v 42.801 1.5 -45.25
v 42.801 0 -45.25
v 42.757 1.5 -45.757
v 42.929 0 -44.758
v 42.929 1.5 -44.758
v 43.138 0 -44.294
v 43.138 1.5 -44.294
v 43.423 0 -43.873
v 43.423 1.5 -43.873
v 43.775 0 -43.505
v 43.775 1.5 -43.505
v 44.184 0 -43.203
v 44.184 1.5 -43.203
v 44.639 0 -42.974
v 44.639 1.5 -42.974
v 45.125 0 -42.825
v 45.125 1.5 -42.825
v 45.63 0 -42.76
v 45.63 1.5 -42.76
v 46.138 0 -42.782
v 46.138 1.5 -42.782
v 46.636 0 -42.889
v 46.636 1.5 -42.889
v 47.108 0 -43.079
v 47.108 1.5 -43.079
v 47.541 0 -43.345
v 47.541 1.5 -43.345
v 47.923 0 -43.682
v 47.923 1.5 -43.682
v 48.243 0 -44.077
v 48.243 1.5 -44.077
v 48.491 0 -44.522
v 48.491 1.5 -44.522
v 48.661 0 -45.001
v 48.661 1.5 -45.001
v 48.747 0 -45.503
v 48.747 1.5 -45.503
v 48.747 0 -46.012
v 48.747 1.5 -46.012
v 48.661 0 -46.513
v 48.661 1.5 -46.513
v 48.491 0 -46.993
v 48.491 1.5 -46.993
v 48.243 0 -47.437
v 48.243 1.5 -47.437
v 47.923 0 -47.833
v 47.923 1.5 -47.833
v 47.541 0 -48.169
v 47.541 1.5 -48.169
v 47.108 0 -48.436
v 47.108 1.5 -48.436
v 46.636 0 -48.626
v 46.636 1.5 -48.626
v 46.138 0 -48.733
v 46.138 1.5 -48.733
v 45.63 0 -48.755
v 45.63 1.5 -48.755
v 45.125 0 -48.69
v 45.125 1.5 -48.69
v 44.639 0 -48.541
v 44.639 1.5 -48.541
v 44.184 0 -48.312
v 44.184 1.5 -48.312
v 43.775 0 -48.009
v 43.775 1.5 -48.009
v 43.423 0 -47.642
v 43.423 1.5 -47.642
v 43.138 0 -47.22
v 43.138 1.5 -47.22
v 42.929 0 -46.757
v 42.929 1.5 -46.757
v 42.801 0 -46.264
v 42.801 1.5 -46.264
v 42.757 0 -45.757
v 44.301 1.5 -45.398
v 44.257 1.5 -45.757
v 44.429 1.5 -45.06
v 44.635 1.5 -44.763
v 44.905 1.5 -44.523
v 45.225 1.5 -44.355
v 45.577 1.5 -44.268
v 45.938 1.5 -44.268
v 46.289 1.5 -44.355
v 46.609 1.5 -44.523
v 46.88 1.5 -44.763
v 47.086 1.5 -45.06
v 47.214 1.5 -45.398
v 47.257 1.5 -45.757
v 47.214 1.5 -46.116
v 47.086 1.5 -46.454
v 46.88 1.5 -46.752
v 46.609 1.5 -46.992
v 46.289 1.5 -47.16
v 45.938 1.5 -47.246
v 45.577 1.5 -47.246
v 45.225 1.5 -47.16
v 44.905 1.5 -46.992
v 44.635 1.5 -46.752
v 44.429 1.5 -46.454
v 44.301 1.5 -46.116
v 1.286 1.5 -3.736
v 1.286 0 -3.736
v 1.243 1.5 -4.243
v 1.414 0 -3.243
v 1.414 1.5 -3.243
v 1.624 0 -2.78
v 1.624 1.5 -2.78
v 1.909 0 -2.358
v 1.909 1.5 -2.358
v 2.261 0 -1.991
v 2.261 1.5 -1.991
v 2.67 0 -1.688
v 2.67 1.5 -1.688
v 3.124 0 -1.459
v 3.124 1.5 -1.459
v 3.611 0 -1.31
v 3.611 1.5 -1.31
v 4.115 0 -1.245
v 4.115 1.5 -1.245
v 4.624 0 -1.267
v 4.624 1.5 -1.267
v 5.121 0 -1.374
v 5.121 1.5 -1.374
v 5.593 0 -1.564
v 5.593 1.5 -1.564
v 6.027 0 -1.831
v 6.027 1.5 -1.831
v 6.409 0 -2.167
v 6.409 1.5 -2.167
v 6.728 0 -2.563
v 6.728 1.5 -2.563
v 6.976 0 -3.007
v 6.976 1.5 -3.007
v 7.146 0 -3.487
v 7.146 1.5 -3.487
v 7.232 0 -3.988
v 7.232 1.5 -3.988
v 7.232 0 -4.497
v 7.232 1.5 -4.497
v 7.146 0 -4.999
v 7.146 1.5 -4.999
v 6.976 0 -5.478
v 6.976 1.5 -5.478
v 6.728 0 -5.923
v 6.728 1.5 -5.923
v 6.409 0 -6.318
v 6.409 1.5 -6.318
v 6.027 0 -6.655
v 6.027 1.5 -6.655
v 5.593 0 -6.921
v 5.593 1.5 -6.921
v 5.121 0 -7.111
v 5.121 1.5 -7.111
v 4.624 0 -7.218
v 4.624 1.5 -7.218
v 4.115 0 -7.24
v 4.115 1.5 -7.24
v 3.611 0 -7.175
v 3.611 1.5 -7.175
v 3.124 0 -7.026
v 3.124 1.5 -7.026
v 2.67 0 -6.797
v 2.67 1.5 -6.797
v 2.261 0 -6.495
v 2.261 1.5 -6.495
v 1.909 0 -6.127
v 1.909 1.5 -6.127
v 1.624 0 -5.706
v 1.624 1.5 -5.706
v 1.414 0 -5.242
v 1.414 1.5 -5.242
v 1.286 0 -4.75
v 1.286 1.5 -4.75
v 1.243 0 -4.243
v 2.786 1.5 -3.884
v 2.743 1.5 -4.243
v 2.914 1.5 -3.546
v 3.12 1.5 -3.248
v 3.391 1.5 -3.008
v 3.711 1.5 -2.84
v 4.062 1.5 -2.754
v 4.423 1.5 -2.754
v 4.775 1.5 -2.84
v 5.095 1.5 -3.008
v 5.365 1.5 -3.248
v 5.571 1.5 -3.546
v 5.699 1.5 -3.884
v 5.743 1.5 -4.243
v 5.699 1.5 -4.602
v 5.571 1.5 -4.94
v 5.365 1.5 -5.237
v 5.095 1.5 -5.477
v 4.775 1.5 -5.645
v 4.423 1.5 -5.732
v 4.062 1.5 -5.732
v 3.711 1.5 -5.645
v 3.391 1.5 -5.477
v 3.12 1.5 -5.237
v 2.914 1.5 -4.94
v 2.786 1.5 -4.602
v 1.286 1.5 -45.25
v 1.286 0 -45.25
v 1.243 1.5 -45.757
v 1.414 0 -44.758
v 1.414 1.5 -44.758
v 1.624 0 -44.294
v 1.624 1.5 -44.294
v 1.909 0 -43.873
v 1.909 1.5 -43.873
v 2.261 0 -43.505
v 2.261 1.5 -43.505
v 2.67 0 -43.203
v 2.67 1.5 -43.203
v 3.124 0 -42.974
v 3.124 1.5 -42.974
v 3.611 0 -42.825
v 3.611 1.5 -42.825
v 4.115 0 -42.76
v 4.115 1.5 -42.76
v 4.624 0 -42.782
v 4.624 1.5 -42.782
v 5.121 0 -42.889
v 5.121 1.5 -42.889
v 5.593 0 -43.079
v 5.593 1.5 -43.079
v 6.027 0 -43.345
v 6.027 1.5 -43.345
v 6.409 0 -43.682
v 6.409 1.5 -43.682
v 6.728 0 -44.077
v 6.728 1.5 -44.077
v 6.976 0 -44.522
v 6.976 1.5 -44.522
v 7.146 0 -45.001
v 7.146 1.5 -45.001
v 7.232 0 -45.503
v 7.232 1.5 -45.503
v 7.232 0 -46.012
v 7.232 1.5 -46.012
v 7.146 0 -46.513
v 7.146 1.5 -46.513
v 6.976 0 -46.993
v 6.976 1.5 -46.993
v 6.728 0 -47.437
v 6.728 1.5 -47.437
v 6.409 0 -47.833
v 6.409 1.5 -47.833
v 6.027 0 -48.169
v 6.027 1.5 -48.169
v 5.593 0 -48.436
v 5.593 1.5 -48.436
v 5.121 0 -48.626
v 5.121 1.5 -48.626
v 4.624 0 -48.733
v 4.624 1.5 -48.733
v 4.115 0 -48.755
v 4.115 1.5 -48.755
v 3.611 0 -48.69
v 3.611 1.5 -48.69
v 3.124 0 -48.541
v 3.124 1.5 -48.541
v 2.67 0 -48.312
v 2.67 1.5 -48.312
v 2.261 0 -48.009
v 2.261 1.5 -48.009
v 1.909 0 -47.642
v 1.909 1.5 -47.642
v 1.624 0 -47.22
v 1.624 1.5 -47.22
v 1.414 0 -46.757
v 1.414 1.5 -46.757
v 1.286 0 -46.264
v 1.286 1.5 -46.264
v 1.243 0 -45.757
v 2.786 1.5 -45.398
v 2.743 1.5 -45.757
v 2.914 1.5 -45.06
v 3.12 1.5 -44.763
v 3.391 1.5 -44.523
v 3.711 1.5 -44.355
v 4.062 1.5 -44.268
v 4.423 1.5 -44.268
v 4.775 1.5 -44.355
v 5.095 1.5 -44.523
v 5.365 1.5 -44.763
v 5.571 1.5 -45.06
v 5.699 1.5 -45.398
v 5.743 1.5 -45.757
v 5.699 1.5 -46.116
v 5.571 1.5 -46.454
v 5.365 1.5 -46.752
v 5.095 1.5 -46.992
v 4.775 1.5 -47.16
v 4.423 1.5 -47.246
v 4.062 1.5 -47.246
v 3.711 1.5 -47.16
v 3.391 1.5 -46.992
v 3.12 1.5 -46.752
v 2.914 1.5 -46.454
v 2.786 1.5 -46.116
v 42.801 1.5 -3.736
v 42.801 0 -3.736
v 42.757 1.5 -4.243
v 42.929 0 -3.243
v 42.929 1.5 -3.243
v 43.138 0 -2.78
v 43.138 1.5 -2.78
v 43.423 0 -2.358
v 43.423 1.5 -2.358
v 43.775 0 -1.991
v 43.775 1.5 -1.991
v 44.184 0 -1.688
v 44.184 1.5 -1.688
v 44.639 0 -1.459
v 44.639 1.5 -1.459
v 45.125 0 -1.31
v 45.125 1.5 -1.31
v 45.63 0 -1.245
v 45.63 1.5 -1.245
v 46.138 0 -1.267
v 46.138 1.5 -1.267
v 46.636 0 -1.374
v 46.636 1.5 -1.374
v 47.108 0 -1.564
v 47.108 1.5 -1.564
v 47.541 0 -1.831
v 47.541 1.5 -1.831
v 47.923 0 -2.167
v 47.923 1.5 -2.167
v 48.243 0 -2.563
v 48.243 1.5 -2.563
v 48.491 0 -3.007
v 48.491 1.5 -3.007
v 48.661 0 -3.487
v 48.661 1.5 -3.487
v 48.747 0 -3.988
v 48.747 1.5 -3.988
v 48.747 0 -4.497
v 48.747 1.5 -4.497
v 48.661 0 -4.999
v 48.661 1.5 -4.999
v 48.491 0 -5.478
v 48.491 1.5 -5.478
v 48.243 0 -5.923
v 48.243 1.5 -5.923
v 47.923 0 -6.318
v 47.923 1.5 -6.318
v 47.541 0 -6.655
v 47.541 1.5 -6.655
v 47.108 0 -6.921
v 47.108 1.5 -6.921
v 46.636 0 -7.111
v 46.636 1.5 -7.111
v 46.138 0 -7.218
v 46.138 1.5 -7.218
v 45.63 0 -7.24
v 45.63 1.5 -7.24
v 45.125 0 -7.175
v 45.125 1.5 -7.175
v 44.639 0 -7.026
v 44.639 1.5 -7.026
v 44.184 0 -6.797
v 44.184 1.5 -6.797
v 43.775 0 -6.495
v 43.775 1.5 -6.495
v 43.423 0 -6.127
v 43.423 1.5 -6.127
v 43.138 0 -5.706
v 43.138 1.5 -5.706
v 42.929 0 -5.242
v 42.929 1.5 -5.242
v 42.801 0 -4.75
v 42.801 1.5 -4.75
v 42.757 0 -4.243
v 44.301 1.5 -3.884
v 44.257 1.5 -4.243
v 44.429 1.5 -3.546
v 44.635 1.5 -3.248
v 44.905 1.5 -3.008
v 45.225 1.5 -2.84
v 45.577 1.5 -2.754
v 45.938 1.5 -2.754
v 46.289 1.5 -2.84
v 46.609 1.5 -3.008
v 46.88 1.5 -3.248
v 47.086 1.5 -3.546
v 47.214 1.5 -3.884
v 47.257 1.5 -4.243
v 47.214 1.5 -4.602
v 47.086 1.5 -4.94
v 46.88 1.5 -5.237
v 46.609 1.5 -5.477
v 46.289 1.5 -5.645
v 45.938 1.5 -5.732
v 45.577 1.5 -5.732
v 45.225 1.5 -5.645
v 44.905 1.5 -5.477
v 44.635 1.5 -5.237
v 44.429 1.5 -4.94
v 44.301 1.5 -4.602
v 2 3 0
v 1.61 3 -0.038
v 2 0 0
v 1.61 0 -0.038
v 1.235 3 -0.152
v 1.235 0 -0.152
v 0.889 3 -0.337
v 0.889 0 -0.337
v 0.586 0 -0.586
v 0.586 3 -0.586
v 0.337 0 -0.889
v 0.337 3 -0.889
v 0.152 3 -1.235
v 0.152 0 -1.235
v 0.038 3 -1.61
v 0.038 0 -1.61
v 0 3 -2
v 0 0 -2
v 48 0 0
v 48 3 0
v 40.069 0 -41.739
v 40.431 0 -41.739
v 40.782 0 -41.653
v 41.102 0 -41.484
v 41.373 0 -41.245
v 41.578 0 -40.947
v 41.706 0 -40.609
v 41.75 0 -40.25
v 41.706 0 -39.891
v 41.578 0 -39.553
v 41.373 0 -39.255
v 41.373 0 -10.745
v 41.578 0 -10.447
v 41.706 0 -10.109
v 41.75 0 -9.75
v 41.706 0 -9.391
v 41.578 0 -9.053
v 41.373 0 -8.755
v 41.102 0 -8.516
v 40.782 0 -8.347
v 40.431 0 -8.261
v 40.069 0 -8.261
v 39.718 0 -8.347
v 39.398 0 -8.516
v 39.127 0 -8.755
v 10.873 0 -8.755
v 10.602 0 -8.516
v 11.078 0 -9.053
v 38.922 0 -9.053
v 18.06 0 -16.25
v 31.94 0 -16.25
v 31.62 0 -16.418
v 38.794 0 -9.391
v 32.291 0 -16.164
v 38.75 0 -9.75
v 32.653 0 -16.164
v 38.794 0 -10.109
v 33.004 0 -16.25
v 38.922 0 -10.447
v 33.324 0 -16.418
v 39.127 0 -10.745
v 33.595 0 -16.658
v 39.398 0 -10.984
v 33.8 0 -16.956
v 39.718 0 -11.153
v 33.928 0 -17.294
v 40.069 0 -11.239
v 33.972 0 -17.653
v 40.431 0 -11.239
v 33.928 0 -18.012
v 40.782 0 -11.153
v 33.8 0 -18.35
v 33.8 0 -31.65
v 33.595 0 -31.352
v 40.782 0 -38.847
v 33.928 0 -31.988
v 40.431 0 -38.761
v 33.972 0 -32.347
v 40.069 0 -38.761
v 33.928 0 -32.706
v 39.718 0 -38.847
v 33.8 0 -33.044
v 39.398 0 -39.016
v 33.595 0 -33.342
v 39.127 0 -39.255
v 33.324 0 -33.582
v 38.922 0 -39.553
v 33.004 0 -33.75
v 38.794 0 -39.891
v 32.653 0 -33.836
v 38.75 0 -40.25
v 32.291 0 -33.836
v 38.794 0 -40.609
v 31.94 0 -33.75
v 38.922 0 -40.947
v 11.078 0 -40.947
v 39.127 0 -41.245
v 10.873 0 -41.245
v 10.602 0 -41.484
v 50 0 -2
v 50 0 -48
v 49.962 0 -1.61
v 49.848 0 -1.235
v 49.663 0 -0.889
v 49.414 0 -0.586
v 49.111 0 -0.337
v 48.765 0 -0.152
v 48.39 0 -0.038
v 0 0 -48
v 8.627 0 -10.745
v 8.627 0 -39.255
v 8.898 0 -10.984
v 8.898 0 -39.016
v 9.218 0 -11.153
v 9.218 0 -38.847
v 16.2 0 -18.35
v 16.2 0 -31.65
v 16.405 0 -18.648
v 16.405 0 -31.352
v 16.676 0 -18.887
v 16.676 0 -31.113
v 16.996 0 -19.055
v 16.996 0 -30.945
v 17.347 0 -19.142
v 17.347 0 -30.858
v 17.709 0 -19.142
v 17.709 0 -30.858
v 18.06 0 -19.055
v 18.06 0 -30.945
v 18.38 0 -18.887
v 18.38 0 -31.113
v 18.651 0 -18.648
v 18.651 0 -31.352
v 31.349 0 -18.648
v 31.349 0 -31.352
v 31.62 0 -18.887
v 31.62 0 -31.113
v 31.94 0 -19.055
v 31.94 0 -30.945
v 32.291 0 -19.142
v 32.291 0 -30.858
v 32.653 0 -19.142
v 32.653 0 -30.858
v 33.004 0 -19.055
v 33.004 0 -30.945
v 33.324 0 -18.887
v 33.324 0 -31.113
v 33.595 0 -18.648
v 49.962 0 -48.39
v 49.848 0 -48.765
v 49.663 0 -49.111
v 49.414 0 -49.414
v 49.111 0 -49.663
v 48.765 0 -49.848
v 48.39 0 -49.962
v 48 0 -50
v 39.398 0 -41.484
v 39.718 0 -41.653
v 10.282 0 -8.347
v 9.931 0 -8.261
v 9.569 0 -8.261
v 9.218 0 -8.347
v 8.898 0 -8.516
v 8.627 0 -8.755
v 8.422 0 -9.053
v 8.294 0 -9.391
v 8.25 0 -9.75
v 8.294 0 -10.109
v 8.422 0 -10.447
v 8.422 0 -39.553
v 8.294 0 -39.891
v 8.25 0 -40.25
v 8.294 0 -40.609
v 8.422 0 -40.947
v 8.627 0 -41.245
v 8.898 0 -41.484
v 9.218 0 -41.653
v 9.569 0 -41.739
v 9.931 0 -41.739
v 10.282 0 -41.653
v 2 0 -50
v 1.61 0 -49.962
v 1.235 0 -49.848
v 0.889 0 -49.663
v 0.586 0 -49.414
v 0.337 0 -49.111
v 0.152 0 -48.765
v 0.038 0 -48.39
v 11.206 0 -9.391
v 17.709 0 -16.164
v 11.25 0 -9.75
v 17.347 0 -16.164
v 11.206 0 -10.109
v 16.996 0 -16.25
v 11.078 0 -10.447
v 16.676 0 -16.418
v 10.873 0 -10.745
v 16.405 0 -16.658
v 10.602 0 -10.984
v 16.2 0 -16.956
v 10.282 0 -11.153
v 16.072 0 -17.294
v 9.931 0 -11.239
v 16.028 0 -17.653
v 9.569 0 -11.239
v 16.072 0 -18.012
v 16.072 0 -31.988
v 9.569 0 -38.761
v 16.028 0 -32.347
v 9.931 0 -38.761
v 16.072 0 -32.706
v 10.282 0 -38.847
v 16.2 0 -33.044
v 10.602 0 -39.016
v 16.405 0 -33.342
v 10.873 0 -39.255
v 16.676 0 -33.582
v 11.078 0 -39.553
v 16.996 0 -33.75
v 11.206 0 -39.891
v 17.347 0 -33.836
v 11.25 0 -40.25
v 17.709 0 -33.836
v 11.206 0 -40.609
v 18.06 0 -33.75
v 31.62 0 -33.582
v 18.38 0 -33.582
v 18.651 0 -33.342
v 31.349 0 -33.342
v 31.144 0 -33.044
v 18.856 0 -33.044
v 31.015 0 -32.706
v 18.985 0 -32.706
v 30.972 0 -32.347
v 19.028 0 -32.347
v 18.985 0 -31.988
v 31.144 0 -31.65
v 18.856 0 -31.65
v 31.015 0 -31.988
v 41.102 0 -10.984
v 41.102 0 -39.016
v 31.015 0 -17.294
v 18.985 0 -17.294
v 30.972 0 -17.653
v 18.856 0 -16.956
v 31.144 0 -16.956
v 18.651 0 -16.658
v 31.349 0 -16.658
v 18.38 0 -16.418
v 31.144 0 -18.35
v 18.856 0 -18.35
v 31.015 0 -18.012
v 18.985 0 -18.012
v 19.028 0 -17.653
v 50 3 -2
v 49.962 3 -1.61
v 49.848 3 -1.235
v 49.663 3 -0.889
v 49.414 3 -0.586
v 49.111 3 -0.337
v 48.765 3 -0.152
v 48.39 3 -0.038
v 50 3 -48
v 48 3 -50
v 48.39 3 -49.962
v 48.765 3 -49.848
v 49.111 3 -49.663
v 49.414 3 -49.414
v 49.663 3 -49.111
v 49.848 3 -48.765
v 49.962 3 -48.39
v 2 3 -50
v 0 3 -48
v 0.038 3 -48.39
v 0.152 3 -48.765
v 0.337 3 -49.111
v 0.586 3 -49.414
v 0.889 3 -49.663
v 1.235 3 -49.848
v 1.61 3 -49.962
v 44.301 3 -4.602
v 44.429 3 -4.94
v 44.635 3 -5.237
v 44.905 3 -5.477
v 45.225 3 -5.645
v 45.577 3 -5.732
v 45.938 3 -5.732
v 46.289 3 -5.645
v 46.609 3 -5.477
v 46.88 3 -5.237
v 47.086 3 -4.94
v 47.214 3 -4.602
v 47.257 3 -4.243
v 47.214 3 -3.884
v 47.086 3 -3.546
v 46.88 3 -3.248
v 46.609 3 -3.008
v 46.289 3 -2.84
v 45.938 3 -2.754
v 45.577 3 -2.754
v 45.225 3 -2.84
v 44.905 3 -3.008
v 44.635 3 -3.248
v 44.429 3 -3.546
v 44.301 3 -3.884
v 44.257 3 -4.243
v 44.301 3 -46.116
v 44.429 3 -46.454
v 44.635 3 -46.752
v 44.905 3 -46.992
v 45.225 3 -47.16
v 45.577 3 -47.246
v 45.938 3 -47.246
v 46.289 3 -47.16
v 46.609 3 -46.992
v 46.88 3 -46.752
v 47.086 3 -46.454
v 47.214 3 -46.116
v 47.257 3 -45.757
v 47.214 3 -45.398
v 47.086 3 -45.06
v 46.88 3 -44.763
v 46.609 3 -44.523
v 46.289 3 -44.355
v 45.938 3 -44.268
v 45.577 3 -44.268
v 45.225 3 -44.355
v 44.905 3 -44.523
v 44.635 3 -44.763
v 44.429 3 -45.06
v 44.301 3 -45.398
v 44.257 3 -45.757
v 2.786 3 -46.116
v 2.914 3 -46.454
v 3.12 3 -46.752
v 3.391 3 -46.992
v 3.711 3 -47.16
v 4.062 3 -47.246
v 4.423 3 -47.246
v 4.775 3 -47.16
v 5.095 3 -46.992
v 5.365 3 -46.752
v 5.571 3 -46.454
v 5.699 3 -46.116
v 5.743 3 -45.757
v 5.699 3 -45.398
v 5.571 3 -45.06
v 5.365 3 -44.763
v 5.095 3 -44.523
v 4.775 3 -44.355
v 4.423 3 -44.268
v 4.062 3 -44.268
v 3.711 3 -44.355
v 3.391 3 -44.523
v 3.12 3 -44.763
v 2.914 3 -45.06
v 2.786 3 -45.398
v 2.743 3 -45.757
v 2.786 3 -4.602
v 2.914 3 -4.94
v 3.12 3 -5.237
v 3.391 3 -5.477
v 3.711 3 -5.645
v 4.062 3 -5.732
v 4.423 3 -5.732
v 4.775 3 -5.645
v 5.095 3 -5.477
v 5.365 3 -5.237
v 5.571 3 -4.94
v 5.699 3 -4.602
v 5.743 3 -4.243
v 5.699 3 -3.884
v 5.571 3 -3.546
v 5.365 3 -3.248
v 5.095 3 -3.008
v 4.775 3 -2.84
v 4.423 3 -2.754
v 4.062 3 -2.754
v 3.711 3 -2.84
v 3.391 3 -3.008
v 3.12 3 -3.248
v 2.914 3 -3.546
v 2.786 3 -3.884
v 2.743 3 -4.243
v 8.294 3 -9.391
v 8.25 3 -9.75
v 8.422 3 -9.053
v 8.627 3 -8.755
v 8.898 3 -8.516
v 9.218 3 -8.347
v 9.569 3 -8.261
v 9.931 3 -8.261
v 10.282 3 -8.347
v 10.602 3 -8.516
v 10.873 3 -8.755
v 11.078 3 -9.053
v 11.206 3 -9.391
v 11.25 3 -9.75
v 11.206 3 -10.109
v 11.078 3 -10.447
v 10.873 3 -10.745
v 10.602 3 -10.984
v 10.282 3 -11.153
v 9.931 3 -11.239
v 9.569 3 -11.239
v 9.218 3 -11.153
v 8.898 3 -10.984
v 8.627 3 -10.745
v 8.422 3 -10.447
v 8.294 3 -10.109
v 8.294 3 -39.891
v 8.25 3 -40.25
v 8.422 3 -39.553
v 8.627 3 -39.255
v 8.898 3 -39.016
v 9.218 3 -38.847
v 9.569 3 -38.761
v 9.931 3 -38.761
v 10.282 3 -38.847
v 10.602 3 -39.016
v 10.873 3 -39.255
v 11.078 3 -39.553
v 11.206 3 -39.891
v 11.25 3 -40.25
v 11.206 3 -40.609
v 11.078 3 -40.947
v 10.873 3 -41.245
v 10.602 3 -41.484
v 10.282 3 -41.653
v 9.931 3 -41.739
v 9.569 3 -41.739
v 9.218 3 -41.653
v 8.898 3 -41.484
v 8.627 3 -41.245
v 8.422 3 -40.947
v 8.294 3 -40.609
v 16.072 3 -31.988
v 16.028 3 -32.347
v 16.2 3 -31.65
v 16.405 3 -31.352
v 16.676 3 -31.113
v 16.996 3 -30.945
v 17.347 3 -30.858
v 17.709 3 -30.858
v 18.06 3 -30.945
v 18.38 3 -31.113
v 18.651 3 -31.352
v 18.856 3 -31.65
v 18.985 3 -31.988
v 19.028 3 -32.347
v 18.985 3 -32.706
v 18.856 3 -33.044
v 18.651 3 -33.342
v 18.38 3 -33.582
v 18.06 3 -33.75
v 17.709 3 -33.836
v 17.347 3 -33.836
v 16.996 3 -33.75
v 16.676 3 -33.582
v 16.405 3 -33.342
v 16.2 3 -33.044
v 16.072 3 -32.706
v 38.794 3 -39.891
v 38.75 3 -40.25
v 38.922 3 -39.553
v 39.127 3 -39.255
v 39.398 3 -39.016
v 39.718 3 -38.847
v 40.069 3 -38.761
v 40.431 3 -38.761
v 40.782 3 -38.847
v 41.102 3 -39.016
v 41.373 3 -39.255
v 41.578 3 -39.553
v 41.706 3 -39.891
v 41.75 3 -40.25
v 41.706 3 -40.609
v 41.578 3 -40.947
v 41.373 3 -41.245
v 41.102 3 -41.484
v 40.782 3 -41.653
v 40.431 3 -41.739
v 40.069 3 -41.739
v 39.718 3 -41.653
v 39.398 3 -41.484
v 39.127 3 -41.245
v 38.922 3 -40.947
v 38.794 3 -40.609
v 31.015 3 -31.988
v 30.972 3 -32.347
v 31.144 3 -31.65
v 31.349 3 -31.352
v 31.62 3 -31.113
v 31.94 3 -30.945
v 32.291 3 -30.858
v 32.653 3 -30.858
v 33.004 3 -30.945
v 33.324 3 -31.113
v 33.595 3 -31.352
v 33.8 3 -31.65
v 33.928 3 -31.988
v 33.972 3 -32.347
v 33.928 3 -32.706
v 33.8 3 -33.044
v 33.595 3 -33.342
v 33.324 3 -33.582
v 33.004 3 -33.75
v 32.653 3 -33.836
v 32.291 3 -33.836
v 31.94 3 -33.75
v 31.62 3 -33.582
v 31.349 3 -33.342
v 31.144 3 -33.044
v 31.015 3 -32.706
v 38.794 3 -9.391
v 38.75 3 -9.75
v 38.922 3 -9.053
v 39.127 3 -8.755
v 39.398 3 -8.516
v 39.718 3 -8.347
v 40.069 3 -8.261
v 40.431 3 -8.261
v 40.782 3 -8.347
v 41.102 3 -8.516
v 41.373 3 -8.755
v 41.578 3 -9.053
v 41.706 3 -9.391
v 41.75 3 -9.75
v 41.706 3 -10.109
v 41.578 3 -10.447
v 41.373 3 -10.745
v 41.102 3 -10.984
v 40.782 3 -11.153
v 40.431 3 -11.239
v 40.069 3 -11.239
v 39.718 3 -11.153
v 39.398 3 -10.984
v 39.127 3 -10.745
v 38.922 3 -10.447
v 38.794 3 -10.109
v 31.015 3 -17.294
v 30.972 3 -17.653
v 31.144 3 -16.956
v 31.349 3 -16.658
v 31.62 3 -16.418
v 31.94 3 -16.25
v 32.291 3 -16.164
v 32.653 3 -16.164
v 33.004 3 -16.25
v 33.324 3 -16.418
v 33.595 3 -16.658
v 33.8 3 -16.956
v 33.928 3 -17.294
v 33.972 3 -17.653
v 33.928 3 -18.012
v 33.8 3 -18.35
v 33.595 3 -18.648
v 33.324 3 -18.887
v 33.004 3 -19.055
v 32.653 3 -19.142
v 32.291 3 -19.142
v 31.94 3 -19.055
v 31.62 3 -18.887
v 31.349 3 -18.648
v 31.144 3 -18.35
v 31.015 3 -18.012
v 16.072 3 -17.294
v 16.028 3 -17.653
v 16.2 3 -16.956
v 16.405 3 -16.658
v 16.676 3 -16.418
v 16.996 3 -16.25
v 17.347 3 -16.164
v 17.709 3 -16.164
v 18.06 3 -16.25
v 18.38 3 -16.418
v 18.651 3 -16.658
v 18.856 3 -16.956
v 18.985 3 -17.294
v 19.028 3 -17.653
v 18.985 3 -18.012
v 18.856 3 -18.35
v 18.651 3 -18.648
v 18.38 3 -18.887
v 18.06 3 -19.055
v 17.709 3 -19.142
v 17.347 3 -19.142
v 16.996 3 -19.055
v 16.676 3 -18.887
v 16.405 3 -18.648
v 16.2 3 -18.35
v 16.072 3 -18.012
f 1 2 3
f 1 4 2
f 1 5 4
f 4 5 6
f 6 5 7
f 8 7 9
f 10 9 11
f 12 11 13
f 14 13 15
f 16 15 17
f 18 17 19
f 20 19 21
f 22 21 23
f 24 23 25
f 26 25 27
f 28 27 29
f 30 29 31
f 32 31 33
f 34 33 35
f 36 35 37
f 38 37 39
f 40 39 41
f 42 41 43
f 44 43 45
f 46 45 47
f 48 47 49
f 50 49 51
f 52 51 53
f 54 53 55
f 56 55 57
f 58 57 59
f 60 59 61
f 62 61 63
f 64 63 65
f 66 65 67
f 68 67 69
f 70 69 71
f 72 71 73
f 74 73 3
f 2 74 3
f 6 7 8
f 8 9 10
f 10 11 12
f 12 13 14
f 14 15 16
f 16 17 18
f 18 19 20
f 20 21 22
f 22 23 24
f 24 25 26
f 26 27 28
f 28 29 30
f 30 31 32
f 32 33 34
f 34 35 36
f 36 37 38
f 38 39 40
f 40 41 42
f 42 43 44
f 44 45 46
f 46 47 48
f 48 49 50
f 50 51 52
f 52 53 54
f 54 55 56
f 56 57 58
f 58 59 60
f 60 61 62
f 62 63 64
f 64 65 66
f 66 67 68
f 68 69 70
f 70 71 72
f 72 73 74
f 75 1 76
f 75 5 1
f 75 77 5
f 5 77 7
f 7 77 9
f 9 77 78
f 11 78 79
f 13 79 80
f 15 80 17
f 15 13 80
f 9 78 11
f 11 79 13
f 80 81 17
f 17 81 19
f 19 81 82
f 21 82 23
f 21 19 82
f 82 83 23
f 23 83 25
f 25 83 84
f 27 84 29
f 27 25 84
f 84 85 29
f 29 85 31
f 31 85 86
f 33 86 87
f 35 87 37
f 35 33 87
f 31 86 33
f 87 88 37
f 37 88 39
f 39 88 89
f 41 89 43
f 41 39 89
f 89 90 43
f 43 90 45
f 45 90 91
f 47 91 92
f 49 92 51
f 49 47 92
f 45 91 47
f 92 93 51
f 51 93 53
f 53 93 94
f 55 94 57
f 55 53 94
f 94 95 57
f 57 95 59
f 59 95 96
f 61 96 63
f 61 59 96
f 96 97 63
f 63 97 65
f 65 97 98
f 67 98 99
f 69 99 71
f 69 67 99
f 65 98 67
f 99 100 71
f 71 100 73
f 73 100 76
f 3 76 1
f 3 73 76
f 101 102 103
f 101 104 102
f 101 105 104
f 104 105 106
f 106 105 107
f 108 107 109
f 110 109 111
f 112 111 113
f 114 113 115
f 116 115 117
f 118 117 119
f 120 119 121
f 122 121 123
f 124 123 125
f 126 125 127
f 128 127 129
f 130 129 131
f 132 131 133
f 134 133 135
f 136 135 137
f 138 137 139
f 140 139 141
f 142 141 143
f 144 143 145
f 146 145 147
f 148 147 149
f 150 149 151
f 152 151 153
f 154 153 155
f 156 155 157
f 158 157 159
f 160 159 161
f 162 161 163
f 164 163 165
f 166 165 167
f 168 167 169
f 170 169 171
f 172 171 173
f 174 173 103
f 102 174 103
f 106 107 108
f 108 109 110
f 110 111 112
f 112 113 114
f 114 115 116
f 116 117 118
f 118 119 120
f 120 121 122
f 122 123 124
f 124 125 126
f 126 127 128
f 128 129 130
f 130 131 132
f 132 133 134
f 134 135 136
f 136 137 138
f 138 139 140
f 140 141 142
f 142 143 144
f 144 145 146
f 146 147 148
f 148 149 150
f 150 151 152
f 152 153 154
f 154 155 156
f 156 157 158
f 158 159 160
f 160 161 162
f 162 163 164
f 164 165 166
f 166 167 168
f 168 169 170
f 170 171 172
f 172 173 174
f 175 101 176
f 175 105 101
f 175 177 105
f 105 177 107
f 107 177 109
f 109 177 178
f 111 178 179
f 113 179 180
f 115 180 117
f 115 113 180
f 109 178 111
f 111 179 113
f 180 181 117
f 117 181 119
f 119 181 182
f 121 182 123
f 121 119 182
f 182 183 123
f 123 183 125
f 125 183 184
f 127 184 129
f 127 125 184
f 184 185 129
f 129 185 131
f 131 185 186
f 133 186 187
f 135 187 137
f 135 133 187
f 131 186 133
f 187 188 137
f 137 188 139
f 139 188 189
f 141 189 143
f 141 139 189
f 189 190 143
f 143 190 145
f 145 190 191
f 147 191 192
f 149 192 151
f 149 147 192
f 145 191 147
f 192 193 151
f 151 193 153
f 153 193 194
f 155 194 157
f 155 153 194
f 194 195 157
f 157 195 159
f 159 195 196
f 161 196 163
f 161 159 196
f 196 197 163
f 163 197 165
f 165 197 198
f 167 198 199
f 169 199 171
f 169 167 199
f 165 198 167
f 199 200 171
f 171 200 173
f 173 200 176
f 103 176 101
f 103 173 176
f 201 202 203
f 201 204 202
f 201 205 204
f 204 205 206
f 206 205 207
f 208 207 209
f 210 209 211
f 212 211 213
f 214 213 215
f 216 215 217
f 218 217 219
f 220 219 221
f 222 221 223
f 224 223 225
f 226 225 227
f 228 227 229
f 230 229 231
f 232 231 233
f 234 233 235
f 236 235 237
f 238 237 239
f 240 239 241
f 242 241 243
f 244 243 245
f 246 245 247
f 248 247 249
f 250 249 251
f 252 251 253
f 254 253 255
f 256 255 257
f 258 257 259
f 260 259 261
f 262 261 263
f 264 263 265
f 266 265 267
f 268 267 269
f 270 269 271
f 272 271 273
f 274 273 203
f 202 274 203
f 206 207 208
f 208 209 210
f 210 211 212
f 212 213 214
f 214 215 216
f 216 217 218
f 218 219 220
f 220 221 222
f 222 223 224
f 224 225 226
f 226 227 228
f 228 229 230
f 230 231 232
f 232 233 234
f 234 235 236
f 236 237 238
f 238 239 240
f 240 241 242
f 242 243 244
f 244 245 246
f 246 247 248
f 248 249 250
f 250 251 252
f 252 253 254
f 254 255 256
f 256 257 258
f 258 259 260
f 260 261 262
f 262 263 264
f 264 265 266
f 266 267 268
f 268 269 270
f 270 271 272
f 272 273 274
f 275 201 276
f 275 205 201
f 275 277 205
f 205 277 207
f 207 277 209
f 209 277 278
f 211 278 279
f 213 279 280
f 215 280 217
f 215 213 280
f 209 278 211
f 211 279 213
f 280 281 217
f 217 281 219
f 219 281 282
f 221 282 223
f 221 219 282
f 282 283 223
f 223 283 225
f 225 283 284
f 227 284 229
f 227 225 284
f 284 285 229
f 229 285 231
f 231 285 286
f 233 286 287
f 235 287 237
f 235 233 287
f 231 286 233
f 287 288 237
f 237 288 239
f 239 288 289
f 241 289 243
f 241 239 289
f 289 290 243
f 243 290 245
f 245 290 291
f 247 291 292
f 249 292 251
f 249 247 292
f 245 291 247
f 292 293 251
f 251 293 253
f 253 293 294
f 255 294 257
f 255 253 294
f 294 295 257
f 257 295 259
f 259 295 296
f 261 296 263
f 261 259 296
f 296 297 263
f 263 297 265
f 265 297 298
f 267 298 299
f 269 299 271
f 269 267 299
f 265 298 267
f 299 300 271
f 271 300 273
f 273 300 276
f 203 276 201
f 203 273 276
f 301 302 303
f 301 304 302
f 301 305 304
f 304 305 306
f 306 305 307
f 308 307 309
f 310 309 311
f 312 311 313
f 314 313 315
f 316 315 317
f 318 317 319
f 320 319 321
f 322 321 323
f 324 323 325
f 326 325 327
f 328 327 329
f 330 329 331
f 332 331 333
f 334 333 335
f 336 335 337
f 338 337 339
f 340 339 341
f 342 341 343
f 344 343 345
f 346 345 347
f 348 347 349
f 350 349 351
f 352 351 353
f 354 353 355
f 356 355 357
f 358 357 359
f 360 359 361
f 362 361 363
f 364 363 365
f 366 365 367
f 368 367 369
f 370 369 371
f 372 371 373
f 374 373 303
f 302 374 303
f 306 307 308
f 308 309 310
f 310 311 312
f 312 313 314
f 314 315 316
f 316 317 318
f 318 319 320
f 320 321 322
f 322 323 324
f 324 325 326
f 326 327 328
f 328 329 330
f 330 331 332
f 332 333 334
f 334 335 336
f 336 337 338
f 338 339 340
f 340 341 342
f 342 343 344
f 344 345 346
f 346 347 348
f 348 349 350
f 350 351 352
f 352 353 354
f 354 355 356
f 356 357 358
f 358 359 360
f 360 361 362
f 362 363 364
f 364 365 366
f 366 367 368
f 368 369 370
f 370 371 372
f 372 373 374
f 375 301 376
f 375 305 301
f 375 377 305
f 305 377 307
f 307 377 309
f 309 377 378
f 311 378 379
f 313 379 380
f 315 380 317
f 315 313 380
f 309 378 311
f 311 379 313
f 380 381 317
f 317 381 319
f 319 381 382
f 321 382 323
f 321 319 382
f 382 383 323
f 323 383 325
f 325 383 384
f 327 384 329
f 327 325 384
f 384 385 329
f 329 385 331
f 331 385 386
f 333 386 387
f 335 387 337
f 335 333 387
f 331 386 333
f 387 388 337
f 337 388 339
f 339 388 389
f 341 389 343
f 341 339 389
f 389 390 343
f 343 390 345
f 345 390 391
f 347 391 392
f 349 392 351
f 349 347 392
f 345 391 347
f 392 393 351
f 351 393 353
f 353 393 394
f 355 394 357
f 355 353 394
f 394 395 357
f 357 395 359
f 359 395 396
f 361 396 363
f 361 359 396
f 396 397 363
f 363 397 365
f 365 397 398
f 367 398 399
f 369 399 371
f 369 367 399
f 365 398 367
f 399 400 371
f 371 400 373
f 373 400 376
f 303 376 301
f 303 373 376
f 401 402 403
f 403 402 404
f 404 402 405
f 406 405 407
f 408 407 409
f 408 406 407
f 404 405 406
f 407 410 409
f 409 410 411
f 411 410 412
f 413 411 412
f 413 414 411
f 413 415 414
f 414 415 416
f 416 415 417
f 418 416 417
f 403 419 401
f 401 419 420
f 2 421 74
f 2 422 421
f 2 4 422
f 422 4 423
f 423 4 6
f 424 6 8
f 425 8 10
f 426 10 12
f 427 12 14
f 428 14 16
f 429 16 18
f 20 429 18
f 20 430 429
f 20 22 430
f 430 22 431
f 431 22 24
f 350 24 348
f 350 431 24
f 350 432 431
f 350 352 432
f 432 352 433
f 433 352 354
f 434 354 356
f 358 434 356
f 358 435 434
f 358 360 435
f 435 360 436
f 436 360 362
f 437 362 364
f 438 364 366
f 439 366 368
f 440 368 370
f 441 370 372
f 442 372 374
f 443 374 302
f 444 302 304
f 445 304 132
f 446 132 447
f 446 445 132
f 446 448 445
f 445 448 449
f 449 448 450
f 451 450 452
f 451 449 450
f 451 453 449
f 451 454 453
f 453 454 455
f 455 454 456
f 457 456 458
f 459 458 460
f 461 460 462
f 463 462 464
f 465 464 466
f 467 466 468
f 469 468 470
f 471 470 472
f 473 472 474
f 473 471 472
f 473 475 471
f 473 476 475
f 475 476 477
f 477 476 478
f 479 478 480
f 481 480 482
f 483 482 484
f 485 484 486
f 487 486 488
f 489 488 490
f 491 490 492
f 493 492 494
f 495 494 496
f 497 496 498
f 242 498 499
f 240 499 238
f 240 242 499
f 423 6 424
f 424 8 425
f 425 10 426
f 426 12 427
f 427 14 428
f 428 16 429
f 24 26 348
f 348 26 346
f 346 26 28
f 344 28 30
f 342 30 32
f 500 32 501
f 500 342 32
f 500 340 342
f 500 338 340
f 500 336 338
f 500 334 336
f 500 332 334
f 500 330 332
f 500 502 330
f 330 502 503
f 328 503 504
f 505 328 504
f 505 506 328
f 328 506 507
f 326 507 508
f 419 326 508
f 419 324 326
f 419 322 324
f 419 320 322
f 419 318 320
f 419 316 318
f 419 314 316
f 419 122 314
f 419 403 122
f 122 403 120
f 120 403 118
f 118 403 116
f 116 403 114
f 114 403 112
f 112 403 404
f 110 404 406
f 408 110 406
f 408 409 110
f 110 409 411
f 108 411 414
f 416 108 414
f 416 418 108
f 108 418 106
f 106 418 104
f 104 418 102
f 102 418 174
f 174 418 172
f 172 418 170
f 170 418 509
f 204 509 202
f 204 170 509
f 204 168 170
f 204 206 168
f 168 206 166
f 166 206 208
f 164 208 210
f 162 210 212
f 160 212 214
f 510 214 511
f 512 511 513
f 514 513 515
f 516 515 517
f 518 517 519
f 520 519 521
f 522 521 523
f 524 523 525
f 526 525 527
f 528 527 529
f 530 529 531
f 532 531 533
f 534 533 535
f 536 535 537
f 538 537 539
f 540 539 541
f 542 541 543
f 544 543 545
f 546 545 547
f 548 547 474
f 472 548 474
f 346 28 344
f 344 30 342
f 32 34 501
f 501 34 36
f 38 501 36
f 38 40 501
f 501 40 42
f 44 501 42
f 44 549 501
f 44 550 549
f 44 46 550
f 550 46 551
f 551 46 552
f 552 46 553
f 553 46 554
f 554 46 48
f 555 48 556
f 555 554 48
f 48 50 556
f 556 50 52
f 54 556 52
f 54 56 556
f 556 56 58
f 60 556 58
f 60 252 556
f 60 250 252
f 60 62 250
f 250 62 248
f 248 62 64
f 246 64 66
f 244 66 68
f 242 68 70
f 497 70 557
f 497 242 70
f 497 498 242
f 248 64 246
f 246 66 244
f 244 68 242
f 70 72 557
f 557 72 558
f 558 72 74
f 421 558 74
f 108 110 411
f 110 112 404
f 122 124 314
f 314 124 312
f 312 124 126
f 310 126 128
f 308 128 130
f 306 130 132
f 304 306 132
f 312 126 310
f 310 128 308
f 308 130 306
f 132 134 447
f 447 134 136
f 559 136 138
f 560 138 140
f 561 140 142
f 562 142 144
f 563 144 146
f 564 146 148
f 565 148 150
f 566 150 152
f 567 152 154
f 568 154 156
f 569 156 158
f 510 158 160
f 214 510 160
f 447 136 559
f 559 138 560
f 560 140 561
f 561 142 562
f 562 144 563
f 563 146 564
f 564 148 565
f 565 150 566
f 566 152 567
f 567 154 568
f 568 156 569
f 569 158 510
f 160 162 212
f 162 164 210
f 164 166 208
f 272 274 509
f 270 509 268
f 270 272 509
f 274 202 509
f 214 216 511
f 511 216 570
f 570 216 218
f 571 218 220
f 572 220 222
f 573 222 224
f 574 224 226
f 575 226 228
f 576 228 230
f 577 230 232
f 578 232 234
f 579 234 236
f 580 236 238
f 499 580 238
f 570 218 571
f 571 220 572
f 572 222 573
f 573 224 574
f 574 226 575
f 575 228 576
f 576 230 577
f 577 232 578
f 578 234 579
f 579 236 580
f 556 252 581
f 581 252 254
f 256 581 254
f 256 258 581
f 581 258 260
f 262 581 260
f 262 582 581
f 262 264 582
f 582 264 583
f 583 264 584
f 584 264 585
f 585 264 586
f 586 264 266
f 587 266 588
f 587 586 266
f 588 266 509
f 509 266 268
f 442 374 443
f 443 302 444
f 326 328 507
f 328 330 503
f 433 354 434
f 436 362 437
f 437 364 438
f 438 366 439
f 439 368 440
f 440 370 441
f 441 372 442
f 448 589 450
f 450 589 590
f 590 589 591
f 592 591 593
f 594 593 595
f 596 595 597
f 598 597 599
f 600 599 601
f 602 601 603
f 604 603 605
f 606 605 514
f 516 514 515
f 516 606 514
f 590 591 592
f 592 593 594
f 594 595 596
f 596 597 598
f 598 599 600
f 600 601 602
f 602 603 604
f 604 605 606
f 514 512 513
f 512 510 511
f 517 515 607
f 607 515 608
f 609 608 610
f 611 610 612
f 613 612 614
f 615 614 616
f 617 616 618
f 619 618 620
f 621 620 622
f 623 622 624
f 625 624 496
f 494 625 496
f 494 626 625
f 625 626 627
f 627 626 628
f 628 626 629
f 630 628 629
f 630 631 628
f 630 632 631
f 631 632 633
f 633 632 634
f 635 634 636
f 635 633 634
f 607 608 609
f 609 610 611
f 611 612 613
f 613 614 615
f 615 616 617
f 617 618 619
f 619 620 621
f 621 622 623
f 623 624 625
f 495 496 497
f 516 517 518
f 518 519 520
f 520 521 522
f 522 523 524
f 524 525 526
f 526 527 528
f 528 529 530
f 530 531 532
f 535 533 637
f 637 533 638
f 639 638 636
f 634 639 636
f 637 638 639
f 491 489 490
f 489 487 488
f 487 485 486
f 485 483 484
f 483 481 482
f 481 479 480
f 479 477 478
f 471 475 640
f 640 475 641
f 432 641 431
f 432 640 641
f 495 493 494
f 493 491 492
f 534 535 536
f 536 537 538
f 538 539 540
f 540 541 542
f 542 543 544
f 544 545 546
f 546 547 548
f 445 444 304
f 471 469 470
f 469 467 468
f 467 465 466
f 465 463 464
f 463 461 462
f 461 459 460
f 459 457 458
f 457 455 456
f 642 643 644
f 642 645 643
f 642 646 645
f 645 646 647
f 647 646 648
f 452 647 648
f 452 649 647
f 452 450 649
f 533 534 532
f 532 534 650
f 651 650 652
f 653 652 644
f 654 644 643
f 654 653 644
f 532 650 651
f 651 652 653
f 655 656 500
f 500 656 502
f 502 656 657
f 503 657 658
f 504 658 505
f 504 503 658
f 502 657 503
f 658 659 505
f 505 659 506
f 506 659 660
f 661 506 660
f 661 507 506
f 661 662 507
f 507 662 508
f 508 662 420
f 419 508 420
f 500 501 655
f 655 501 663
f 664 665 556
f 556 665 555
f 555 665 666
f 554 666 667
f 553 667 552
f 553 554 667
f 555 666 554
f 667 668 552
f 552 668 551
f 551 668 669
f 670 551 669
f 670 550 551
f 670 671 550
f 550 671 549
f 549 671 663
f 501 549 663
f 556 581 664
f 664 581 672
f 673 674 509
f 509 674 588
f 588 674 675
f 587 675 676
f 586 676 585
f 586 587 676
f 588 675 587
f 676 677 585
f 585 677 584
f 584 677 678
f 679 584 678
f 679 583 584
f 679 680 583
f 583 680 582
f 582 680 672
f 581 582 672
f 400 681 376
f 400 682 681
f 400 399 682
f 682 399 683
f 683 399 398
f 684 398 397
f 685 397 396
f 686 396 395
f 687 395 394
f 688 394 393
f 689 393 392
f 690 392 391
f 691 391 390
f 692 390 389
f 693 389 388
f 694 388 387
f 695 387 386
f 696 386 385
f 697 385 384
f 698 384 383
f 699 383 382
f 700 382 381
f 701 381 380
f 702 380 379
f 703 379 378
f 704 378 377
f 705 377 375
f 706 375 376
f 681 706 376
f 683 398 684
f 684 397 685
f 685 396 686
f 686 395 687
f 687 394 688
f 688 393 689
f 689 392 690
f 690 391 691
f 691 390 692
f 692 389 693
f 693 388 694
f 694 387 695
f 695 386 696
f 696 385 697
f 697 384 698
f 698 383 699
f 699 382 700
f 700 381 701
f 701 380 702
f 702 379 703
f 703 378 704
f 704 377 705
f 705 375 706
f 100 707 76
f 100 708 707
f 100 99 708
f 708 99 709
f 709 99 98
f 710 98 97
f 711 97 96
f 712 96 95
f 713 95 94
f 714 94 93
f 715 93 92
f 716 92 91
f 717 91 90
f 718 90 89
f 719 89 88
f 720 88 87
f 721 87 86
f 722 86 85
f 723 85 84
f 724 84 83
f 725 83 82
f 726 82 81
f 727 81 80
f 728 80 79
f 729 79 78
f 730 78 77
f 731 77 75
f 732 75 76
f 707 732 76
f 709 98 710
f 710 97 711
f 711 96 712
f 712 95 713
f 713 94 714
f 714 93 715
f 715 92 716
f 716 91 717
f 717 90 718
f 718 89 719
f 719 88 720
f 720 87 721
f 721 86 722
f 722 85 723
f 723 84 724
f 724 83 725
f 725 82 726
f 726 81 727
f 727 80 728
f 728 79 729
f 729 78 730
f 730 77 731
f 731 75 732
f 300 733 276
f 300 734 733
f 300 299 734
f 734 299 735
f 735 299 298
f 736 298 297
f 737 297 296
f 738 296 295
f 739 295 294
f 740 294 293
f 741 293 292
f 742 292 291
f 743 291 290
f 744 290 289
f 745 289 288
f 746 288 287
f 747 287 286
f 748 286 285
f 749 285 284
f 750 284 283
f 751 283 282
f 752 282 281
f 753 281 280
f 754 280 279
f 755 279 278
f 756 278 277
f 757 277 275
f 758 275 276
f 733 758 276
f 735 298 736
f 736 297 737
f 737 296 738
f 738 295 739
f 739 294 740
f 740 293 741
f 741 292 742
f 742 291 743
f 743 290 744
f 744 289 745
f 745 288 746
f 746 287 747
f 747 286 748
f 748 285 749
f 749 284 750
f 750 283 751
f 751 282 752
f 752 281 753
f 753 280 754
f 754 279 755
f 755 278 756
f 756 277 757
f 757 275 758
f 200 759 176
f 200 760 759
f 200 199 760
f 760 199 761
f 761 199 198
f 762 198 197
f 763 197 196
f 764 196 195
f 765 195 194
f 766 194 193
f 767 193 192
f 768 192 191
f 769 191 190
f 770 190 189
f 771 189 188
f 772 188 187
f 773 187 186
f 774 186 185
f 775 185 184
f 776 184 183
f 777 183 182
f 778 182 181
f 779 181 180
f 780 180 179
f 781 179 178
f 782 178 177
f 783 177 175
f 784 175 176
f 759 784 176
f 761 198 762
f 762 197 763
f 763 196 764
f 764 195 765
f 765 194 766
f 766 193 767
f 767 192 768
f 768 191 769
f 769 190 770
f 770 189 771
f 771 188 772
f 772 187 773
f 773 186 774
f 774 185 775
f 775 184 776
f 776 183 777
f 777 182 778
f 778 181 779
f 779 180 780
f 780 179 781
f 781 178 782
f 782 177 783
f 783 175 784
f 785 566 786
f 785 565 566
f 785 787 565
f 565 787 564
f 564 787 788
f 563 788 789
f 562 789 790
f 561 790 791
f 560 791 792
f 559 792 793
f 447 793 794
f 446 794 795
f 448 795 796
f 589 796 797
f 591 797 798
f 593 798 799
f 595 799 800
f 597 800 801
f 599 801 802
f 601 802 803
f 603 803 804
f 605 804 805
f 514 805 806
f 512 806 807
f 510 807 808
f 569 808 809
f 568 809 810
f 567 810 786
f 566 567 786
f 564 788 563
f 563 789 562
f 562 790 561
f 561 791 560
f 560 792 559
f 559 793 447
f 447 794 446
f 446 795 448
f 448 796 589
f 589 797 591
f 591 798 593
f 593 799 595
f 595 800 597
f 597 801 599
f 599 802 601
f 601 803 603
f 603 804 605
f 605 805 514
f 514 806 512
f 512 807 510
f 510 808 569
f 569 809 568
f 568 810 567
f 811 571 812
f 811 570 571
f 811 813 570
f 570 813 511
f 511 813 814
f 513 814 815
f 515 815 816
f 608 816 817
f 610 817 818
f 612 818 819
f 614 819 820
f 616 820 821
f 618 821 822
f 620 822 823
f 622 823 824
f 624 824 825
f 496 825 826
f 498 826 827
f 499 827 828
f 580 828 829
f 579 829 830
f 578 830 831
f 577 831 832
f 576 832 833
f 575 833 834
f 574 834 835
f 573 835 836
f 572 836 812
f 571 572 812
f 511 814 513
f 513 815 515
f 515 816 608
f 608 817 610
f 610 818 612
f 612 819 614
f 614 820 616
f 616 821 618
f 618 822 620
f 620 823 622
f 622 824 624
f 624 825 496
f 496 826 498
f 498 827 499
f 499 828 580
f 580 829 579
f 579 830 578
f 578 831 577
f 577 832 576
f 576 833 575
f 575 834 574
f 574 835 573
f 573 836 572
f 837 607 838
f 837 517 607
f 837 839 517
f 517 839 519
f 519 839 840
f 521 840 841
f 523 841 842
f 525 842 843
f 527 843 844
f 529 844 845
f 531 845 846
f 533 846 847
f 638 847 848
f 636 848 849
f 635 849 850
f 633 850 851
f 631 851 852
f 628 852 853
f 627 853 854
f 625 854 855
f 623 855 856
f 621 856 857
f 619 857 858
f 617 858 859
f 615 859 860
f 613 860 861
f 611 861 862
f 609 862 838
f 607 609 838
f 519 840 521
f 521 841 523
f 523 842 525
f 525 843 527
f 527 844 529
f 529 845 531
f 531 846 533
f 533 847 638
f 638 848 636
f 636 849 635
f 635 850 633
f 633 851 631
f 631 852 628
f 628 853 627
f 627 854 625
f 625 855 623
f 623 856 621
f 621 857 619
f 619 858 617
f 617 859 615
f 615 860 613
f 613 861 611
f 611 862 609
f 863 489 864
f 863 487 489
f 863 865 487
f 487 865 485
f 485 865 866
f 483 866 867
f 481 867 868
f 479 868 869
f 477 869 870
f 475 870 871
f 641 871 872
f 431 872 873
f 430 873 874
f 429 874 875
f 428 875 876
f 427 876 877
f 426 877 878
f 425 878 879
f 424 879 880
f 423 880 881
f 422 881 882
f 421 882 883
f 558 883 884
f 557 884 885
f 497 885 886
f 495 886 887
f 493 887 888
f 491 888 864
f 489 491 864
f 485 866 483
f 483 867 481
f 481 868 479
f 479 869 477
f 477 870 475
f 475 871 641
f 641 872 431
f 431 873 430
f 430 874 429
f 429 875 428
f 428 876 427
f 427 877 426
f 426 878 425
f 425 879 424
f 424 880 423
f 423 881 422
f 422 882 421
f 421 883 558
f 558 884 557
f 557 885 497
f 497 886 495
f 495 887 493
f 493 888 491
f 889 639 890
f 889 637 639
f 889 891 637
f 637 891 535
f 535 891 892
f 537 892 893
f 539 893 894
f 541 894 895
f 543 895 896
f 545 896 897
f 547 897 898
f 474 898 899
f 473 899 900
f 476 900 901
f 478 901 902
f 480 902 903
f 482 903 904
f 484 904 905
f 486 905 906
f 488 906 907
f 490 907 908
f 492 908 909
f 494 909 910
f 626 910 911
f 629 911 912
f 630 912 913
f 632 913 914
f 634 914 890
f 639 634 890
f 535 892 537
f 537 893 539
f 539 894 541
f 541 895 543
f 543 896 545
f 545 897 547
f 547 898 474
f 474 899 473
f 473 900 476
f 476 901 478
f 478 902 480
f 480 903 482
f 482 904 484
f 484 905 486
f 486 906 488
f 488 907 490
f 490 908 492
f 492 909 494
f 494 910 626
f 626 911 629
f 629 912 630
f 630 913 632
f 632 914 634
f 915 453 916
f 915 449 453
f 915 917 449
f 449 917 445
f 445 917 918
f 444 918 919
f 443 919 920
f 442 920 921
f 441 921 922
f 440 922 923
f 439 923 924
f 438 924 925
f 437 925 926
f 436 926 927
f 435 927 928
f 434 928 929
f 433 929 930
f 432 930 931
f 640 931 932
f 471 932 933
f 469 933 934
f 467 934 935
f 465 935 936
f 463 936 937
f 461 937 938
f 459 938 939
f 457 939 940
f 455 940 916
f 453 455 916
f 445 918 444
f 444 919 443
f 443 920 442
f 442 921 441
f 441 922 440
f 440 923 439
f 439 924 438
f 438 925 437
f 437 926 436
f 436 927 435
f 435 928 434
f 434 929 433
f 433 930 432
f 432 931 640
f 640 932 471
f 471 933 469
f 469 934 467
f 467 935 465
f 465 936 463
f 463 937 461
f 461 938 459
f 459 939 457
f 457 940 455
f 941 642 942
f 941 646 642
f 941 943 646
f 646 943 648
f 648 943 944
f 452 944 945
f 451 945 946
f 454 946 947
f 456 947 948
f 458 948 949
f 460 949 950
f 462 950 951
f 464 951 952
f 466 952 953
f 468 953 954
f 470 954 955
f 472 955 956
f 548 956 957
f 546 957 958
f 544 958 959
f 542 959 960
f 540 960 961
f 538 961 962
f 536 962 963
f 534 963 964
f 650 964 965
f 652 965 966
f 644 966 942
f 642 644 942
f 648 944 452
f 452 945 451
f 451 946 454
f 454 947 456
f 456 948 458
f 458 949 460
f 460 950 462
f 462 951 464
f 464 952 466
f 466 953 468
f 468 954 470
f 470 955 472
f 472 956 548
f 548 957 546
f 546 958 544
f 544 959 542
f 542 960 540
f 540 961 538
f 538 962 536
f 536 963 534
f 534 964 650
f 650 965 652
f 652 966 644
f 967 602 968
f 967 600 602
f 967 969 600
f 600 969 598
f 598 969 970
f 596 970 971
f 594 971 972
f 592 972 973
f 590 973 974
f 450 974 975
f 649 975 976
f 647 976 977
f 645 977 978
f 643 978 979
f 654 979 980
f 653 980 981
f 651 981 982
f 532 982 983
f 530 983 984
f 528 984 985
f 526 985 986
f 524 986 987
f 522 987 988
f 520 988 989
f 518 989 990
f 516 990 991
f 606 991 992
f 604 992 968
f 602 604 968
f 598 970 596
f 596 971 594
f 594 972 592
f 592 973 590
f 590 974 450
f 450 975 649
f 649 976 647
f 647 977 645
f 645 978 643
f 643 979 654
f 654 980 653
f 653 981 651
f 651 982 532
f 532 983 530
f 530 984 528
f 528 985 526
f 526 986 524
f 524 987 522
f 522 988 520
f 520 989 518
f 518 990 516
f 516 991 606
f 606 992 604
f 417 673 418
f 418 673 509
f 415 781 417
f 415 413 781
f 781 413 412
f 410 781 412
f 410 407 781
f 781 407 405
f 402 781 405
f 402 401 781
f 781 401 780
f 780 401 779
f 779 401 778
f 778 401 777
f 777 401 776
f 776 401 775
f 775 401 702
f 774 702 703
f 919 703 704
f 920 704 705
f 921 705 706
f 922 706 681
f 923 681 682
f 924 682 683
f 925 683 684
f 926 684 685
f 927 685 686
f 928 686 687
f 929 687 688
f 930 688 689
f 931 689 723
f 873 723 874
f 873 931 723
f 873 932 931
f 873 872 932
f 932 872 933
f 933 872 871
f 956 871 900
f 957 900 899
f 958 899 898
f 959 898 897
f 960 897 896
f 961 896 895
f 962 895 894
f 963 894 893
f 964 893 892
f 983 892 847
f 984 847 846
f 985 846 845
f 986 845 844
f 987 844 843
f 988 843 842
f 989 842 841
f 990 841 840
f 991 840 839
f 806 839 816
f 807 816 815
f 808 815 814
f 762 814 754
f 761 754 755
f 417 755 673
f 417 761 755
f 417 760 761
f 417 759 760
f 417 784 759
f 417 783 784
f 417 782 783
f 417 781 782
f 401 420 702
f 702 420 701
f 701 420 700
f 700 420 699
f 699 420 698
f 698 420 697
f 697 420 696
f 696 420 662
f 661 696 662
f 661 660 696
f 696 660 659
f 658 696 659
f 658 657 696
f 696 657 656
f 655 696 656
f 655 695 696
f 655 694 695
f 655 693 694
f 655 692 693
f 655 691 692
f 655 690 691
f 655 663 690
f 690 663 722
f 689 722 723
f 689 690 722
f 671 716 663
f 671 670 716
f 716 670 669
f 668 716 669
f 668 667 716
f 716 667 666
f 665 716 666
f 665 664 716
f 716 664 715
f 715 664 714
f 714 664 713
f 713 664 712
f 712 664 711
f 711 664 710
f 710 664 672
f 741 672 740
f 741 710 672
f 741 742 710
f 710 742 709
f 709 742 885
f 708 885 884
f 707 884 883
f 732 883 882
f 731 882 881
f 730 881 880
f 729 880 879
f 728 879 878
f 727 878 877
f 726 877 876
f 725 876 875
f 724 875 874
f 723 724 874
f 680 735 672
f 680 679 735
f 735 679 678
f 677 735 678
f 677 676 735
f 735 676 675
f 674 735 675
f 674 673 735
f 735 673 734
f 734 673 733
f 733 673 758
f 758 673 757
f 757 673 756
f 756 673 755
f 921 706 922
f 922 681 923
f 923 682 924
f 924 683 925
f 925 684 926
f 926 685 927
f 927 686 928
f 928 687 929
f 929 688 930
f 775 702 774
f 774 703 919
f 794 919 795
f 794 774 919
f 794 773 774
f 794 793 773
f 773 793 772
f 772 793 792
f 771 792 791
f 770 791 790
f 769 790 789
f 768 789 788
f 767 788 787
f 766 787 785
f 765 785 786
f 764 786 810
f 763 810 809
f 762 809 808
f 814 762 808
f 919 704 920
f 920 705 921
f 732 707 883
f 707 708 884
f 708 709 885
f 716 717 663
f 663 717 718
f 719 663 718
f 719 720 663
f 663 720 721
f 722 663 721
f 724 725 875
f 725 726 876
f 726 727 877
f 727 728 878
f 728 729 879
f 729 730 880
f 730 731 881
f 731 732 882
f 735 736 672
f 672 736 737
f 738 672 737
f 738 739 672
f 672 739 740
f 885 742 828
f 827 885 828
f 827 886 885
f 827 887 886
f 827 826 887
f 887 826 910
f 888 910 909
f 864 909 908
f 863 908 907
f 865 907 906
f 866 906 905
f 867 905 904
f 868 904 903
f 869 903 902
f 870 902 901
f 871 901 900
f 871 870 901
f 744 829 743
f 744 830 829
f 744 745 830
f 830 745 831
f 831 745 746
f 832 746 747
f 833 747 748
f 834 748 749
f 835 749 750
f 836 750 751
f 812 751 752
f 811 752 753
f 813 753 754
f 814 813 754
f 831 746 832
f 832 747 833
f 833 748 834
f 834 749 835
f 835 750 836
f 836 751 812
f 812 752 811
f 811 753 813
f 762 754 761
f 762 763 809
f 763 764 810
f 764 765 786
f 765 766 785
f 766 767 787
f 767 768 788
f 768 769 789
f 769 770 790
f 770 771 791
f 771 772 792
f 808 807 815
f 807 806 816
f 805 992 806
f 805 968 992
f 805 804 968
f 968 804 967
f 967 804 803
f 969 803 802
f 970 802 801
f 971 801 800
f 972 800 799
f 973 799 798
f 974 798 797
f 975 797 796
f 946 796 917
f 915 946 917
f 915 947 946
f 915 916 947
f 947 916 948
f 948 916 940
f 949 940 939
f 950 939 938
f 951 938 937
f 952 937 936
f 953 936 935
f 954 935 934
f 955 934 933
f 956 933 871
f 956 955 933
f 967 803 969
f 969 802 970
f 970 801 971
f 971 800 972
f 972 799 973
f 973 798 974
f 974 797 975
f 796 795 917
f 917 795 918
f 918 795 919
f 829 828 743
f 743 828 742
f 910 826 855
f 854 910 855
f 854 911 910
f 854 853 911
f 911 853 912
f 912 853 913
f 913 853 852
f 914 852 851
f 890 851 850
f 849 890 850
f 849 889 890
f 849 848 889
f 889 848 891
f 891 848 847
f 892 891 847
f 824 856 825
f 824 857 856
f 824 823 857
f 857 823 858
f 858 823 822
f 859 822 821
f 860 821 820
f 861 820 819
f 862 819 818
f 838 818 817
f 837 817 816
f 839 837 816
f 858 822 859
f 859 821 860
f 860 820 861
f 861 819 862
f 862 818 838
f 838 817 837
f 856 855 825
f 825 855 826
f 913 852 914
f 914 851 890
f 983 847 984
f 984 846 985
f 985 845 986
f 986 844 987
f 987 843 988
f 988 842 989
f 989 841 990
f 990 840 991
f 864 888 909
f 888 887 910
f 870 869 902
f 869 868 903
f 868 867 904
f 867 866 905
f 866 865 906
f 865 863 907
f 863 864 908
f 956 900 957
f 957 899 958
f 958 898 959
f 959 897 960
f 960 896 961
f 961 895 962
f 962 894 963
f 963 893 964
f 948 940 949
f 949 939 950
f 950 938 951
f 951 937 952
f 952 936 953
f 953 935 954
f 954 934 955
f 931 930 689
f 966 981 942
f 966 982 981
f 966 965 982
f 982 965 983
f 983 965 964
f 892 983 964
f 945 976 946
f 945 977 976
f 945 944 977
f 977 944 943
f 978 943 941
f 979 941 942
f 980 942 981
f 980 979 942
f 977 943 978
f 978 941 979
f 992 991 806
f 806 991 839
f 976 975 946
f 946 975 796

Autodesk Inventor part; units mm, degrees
ref_plane "YZ Plane" through (0, 0, 0) normal (1, 0, 0) x (0, 1, 0)
ref_plane "XZ Plane" through (0, 0, 0) normal (0, 1, 0) x (-1, 0, 0)
ref_plane "XY Plane" through (0, 0, 0) normal (0, 0, 1) x (1, 0, 0)
sketch "Sketch1" plane through (0, 0, 0) normal (0, 1, 0) x (-1, 0, 0)
  circle A0 centre (-17.5282, -17.6529) radius 1.5
  circle A1 centre (-32.4718, -17.6529) radius 1.5
  circle A2 centre (-32.4718, -32.3471) radius 1.5
  circle A3 centre (-40.25, -40.25) radius 1.5
  circle A4 centre (-40.25, -9.75) radius 1.5
  circle A5 centre (-17.5282, -32.3471) radius 1.5
  circle A6 centre (-9.75, -40.25) radius 1.5
  circle A7 centre (-9.75, -9.75) radius 1.5
  line L0 (0, 0) -> (0, -50)
  line L1 (0, -50) -> (-50, -50)
  line L2 (-50, -50) -> (-50, 0)
  line L3 (-50, 0) -> (0, 0)
  circle A8 centre (-4.2426, -4.2426) radius 1.5
  circle A9 centre (-4.2426, -45.7574) radius 1.5
  circle A10 centre (-45.7574, -45.7574) radius 1.5
  circle A11 centre (-45.7574, -4.2426) radius 1.5
  circle A12 centre (-6.6113, -80.0791) radius 3
  circle A13 centre (-15.9332, -80.0791) radius 3
  line L4 (-3.9183, -85.1543) -> (-3.9183, -133.5246) construction
  line L5 (-3.9183, -133.5246) -> (-20.8013, -133.5246) construction
  line L6 (-20.8013, -133.5246) -> (-20.8013, -85.1543) construction
  line L7 (-20.8013, -85.1543) -> (-3.9183, -85.1543) construction
  circle A14 centre (-4.2426, -4.2426) radius 3
  circle A15 centre (-4.2426, -45.7574) radius 3
  circle A16 centre (-45.7574, -45.7574) radius 3
  circle A17 centre (-45.7574, -4.2426) radius 3
  dimension "d2" = 3
  dimension "d3" = 3
  dimension "d4" = 3
  dimension "d5" = 3
  dimension "d6" = 50
  dimension "d7" = 50
  dimension "d12" = 3
  dimension "d13" = 3
  dimension "d14" = 3
  dimension "d15" = 3
  dimension "d16" = 6
  dimension "d17" = 6
  dimension "d21" = 6
  dimension "d22" = 6
  dimension "d23" = 6
  dimension "d24" = 6
extrude "Extrusion1" add sketch "Sketch1" along normal blind 3 contours L0 L1 L2 L3 | A14 | A15 | A16 | A17
fillet "Fillet1" radius 2 4 edges at (0, 1.5, -50) (50, 1.5, -50) (50, 1.5, 0) (0, 1.5, 0)
extrude "Extrusion2" cut sketch "Sketch1" along normal blind 1.5 contours A14 | A15 | A16 | A17
properties part number "Topp 2.1"
